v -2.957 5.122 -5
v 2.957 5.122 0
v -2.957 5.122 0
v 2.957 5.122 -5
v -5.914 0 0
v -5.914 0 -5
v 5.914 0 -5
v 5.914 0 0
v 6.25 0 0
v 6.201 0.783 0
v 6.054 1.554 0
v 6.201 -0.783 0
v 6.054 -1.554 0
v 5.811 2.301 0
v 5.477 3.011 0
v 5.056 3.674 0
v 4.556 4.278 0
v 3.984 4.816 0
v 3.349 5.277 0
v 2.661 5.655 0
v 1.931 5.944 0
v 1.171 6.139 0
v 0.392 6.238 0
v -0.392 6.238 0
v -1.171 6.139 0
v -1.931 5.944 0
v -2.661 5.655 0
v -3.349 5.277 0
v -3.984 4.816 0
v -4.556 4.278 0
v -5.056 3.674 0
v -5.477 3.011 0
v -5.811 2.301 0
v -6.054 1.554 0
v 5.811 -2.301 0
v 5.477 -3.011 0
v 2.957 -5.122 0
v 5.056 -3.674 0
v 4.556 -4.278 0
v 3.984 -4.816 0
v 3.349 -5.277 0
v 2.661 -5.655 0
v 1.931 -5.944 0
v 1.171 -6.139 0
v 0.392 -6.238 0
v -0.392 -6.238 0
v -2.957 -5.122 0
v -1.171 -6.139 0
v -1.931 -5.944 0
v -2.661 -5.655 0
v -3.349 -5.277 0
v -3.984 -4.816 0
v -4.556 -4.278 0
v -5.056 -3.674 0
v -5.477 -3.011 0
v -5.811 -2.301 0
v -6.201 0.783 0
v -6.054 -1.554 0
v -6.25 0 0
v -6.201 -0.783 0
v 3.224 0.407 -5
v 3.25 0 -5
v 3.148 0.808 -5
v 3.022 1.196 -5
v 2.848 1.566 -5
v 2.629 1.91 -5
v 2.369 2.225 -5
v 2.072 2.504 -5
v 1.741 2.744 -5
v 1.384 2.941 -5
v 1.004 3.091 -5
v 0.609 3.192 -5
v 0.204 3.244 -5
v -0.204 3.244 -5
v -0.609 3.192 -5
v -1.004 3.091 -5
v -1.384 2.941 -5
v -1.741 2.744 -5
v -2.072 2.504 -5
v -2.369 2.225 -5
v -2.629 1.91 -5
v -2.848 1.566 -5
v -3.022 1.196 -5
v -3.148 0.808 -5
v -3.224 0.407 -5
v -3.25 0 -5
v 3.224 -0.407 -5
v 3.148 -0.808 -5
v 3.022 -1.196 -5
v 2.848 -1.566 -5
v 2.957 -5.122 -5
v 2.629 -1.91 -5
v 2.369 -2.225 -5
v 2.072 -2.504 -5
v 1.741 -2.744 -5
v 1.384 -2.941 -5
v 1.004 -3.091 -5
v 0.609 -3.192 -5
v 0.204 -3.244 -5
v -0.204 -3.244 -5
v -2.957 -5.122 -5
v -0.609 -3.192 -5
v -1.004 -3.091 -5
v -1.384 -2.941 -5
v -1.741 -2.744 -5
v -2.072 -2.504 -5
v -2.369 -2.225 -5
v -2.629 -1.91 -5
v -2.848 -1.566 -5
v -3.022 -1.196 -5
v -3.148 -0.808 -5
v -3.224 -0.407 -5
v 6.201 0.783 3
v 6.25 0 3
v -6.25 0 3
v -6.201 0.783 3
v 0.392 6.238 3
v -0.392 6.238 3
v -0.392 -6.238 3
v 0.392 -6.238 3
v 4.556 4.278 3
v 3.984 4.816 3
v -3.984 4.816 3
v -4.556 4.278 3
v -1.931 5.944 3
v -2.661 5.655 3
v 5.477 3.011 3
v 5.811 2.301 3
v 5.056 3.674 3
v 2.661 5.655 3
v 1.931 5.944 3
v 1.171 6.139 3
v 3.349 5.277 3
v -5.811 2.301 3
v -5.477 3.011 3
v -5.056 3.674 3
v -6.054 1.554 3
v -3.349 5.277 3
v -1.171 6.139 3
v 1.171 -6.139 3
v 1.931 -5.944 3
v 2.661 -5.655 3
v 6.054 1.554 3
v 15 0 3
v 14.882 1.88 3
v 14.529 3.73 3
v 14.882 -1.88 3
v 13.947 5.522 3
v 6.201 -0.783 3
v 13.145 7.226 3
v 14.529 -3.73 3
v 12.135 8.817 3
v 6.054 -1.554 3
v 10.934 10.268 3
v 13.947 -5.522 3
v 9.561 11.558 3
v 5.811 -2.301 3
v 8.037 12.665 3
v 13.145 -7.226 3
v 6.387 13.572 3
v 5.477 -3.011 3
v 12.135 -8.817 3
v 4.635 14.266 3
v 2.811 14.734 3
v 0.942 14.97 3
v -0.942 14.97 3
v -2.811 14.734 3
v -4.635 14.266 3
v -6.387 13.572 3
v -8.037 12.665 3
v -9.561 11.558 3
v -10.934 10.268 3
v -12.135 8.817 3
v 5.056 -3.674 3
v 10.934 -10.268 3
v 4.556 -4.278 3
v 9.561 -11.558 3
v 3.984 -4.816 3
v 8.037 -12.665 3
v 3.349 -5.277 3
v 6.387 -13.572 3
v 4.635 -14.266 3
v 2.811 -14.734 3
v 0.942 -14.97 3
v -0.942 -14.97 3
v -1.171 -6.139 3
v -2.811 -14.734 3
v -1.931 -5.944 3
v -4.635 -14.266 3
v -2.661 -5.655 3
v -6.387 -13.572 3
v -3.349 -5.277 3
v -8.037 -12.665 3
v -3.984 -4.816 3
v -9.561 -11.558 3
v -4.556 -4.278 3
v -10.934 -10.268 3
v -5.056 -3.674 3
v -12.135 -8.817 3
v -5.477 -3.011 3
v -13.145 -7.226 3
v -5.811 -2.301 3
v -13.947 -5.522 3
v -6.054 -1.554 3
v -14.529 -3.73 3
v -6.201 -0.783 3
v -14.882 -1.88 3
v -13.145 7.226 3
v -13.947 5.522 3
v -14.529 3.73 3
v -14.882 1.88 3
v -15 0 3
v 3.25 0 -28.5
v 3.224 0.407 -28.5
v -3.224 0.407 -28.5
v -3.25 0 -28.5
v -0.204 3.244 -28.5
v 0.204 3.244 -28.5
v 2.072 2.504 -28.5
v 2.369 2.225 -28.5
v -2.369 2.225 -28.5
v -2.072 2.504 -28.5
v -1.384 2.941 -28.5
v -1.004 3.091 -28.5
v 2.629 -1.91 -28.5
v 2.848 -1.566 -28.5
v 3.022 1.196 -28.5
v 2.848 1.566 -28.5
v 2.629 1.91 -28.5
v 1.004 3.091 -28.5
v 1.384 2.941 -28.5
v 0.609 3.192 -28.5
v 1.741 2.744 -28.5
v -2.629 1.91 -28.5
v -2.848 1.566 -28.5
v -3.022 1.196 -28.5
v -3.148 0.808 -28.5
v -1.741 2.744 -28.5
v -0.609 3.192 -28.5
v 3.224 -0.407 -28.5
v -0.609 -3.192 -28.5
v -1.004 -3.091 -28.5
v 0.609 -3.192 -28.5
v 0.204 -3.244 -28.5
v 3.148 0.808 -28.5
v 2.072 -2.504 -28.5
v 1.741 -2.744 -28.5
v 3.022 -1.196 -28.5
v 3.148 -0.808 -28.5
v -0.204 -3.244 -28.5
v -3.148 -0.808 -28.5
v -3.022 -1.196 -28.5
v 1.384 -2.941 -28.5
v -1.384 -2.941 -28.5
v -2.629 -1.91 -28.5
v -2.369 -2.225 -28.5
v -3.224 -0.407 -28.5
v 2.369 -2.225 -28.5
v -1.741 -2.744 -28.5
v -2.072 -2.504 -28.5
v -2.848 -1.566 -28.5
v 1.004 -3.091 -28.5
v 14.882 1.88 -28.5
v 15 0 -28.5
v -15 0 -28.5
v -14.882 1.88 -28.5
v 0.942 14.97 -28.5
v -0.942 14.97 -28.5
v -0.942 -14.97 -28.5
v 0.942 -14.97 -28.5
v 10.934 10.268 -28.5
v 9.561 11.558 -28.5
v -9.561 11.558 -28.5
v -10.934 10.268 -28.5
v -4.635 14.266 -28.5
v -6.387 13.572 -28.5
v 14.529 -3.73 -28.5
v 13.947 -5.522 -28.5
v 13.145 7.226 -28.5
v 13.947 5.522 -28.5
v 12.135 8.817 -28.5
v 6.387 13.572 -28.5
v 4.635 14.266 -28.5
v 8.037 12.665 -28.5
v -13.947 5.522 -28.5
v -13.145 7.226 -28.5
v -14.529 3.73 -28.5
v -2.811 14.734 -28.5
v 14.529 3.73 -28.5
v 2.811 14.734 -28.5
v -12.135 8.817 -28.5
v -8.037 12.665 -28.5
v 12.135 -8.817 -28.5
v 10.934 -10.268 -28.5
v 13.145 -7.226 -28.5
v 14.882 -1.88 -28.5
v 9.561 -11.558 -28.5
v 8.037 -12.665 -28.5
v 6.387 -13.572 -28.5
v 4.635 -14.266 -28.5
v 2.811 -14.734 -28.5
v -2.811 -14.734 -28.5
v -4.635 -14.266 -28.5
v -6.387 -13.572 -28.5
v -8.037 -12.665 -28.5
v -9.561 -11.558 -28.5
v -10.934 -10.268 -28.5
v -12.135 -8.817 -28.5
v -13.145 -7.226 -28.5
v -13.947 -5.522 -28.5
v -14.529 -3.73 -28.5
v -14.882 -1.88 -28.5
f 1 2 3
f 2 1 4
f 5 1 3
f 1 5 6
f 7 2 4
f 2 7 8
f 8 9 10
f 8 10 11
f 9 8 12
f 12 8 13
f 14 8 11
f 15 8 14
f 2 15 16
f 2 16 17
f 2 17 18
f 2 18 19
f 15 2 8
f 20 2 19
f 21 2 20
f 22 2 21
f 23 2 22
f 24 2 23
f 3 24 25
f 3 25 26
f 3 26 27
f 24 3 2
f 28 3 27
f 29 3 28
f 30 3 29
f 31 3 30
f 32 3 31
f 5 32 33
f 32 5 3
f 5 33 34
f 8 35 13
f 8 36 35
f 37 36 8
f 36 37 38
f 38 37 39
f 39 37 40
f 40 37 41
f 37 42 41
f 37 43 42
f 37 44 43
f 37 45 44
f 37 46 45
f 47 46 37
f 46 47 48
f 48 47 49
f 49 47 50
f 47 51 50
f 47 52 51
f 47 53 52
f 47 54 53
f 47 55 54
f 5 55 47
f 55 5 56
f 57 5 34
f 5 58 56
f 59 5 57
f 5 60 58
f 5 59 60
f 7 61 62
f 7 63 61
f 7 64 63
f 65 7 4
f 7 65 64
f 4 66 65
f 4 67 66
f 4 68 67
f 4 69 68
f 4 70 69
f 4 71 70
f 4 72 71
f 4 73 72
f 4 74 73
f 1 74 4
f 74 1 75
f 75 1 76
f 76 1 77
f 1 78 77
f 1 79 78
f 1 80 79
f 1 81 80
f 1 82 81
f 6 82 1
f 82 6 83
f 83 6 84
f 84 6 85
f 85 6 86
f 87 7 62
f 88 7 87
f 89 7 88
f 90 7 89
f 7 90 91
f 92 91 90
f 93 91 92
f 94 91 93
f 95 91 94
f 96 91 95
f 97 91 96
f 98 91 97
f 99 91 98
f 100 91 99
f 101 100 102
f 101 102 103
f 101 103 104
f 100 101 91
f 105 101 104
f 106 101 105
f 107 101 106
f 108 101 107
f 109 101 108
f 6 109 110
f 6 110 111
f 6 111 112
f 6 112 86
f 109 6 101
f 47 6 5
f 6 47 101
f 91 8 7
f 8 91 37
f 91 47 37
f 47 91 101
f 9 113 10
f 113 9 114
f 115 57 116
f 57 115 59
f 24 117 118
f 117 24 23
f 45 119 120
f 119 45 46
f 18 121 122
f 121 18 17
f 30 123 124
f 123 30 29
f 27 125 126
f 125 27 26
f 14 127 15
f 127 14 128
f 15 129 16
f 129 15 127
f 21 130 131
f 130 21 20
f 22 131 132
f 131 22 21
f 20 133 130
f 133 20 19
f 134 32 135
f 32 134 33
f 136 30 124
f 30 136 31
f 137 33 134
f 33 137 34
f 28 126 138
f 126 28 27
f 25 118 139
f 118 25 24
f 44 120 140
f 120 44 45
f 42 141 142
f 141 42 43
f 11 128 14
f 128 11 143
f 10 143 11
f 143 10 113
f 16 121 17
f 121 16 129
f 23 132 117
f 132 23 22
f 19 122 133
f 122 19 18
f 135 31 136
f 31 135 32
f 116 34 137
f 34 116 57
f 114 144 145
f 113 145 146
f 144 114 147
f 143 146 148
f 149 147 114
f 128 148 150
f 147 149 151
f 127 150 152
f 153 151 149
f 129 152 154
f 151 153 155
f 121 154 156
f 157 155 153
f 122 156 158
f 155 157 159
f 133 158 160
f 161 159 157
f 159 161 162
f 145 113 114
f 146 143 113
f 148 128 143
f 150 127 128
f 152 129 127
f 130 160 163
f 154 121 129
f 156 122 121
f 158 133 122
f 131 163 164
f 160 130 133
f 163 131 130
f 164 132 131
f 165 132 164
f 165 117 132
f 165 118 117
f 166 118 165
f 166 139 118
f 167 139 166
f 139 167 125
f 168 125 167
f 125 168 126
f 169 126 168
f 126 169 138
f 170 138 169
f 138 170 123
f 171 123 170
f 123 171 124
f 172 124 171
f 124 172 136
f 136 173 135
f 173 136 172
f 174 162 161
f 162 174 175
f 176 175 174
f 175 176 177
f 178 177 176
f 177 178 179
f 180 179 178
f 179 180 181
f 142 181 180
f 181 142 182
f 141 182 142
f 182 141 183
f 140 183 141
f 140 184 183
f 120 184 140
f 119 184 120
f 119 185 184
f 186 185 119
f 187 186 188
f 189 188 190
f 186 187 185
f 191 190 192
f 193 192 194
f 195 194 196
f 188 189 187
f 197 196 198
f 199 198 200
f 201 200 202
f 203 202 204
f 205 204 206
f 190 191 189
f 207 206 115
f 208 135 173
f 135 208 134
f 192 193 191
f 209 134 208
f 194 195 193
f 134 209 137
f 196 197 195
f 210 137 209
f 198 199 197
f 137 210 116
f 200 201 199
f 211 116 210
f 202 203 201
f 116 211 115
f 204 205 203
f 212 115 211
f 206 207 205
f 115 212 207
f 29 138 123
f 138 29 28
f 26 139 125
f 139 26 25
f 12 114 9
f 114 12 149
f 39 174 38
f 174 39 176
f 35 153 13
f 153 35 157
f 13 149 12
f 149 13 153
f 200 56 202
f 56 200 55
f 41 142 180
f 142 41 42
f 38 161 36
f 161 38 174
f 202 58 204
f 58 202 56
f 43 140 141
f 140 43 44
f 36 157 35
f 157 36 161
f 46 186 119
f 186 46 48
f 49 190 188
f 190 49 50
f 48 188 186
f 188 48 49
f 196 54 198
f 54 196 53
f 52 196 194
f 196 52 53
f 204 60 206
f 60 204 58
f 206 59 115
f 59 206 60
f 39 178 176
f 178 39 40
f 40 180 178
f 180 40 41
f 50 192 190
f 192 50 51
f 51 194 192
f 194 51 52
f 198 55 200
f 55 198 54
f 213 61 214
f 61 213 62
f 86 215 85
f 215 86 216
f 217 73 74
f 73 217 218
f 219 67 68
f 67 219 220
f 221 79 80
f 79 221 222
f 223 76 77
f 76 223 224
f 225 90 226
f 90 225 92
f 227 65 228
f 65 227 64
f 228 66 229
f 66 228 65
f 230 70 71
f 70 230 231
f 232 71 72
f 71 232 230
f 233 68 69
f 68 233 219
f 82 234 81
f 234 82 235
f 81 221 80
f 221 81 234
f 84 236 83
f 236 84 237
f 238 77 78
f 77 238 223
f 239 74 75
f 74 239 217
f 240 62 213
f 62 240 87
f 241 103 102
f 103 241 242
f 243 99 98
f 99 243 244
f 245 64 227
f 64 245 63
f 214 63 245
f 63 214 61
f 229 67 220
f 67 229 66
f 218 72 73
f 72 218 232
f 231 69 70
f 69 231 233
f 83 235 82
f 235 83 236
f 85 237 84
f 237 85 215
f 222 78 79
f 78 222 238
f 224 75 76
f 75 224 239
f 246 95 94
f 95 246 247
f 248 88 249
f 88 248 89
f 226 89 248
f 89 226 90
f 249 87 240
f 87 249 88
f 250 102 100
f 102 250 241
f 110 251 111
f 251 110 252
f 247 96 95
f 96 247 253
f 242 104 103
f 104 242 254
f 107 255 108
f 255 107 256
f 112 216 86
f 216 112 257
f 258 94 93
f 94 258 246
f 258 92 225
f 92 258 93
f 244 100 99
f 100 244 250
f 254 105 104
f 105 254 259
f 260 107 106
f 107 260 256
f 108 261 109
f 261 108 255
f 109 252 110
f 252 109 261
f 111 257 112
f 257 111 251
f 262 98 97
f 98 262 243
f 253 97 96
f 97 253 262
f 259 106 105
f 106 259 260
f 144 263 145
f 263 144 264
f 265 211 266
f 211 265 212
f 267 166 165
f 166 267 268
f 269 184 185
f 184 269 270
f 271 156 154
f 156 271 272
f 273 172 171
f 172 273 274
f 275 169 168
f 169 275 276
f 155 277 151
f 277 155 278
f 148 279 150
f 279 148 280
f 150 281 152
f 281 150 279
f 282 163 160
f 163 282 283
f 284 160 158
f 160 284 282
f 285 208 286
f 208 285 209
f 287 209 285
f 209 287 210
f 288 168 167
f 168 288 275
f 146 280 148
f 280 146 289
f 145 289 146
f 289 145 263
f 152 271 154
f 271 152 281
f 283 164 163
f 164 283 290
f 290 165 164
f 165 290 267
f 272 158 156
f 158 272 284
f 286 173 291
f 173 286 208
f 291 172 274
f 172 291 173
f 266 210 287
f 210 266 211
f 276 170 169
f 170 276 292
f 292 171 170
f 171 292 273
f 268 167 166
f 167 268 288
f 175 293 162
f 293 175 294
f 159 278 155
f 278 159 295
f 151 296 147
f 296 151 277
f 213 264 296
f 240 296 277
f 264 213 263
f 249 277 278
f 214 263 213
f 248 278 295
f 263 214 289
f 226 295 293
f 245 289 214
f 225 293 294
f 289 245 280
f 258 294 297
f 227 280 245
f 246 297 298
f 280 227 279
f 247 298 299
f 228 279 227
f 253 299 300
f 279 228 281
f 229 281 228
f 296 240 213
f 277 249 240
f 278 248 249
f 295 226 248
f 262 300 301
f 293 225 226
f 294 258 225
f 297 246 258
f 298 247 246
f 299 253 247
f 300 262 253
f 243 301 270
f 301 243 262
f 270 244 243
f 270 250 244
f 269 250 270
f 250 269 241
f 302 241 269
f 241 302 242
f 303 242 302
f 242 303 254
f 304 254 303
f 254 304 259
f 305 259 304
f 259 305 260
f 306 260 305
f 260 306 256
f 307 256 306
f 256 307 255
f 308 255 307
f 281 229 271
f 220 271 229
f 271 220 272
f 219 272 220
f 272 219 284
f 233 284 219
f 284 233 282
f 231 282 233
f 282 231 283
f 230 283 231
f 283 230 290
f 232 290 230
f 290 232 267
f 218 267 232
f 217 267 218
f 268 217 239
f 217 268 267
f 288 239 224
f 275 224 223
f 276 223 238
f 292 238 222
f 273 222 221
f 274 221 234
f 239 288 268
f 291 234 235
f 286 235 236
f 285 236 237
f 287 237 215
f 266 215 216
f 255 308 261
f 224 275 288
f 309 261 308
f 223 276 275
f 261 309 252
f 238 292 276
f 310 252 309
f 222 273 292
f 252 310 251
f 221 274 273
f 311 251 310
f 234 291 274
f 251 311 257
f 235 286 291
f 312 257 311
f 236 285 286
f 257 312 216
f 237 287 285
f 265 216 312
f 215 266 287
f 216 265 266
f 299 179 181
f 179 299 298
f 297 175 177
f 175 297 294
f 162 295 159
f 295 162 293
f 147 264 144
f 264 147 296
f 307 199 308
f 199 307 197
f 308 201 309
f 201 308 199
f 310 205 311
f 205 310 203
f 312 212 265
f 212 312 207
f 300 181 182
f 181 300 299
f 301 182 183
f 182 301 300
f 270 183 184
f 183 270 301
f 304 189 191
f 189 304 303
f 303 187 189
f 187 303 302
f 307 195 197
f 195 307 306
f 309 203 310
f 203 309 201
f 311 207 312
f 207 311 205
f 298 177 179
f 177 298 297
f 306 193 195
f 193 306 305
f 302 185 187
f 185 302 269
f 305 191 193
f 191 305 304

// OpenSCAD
$fn = 50;

difference() {
	union() {
		translate(v = [0, 0, -28.5]) {
			cylinder(h = 31.5, r = 15.0);
		}
	}
	union() {
		translate(v = [0, 0, 0]) {
			rotate(a = [0, 0, 0]) {
				difference() {
					union() {
						translate(v = [0, 0, -5]) {
							linear_extrude(height = 5) {
								polygon(points = [[5.914249999999999, 0.0], [2.957125, 5.1218907443321156], [-2.9571249999999982, 5.1218907443321156], [-5.914249999999999, 7.242867331857232e-16], [-2.9571250000000022, -5.121890744332115], [2.9571249999999956, -5.121890744332118]]);
							}
						}
					}
					union();
				}
			}
		}
		#cylinder(h = 3, r = 6.25);
		#translate(v = [0, 0, -100.0]) {
			cylinder(h = 200, r = 3.25);
		}
	}
}
